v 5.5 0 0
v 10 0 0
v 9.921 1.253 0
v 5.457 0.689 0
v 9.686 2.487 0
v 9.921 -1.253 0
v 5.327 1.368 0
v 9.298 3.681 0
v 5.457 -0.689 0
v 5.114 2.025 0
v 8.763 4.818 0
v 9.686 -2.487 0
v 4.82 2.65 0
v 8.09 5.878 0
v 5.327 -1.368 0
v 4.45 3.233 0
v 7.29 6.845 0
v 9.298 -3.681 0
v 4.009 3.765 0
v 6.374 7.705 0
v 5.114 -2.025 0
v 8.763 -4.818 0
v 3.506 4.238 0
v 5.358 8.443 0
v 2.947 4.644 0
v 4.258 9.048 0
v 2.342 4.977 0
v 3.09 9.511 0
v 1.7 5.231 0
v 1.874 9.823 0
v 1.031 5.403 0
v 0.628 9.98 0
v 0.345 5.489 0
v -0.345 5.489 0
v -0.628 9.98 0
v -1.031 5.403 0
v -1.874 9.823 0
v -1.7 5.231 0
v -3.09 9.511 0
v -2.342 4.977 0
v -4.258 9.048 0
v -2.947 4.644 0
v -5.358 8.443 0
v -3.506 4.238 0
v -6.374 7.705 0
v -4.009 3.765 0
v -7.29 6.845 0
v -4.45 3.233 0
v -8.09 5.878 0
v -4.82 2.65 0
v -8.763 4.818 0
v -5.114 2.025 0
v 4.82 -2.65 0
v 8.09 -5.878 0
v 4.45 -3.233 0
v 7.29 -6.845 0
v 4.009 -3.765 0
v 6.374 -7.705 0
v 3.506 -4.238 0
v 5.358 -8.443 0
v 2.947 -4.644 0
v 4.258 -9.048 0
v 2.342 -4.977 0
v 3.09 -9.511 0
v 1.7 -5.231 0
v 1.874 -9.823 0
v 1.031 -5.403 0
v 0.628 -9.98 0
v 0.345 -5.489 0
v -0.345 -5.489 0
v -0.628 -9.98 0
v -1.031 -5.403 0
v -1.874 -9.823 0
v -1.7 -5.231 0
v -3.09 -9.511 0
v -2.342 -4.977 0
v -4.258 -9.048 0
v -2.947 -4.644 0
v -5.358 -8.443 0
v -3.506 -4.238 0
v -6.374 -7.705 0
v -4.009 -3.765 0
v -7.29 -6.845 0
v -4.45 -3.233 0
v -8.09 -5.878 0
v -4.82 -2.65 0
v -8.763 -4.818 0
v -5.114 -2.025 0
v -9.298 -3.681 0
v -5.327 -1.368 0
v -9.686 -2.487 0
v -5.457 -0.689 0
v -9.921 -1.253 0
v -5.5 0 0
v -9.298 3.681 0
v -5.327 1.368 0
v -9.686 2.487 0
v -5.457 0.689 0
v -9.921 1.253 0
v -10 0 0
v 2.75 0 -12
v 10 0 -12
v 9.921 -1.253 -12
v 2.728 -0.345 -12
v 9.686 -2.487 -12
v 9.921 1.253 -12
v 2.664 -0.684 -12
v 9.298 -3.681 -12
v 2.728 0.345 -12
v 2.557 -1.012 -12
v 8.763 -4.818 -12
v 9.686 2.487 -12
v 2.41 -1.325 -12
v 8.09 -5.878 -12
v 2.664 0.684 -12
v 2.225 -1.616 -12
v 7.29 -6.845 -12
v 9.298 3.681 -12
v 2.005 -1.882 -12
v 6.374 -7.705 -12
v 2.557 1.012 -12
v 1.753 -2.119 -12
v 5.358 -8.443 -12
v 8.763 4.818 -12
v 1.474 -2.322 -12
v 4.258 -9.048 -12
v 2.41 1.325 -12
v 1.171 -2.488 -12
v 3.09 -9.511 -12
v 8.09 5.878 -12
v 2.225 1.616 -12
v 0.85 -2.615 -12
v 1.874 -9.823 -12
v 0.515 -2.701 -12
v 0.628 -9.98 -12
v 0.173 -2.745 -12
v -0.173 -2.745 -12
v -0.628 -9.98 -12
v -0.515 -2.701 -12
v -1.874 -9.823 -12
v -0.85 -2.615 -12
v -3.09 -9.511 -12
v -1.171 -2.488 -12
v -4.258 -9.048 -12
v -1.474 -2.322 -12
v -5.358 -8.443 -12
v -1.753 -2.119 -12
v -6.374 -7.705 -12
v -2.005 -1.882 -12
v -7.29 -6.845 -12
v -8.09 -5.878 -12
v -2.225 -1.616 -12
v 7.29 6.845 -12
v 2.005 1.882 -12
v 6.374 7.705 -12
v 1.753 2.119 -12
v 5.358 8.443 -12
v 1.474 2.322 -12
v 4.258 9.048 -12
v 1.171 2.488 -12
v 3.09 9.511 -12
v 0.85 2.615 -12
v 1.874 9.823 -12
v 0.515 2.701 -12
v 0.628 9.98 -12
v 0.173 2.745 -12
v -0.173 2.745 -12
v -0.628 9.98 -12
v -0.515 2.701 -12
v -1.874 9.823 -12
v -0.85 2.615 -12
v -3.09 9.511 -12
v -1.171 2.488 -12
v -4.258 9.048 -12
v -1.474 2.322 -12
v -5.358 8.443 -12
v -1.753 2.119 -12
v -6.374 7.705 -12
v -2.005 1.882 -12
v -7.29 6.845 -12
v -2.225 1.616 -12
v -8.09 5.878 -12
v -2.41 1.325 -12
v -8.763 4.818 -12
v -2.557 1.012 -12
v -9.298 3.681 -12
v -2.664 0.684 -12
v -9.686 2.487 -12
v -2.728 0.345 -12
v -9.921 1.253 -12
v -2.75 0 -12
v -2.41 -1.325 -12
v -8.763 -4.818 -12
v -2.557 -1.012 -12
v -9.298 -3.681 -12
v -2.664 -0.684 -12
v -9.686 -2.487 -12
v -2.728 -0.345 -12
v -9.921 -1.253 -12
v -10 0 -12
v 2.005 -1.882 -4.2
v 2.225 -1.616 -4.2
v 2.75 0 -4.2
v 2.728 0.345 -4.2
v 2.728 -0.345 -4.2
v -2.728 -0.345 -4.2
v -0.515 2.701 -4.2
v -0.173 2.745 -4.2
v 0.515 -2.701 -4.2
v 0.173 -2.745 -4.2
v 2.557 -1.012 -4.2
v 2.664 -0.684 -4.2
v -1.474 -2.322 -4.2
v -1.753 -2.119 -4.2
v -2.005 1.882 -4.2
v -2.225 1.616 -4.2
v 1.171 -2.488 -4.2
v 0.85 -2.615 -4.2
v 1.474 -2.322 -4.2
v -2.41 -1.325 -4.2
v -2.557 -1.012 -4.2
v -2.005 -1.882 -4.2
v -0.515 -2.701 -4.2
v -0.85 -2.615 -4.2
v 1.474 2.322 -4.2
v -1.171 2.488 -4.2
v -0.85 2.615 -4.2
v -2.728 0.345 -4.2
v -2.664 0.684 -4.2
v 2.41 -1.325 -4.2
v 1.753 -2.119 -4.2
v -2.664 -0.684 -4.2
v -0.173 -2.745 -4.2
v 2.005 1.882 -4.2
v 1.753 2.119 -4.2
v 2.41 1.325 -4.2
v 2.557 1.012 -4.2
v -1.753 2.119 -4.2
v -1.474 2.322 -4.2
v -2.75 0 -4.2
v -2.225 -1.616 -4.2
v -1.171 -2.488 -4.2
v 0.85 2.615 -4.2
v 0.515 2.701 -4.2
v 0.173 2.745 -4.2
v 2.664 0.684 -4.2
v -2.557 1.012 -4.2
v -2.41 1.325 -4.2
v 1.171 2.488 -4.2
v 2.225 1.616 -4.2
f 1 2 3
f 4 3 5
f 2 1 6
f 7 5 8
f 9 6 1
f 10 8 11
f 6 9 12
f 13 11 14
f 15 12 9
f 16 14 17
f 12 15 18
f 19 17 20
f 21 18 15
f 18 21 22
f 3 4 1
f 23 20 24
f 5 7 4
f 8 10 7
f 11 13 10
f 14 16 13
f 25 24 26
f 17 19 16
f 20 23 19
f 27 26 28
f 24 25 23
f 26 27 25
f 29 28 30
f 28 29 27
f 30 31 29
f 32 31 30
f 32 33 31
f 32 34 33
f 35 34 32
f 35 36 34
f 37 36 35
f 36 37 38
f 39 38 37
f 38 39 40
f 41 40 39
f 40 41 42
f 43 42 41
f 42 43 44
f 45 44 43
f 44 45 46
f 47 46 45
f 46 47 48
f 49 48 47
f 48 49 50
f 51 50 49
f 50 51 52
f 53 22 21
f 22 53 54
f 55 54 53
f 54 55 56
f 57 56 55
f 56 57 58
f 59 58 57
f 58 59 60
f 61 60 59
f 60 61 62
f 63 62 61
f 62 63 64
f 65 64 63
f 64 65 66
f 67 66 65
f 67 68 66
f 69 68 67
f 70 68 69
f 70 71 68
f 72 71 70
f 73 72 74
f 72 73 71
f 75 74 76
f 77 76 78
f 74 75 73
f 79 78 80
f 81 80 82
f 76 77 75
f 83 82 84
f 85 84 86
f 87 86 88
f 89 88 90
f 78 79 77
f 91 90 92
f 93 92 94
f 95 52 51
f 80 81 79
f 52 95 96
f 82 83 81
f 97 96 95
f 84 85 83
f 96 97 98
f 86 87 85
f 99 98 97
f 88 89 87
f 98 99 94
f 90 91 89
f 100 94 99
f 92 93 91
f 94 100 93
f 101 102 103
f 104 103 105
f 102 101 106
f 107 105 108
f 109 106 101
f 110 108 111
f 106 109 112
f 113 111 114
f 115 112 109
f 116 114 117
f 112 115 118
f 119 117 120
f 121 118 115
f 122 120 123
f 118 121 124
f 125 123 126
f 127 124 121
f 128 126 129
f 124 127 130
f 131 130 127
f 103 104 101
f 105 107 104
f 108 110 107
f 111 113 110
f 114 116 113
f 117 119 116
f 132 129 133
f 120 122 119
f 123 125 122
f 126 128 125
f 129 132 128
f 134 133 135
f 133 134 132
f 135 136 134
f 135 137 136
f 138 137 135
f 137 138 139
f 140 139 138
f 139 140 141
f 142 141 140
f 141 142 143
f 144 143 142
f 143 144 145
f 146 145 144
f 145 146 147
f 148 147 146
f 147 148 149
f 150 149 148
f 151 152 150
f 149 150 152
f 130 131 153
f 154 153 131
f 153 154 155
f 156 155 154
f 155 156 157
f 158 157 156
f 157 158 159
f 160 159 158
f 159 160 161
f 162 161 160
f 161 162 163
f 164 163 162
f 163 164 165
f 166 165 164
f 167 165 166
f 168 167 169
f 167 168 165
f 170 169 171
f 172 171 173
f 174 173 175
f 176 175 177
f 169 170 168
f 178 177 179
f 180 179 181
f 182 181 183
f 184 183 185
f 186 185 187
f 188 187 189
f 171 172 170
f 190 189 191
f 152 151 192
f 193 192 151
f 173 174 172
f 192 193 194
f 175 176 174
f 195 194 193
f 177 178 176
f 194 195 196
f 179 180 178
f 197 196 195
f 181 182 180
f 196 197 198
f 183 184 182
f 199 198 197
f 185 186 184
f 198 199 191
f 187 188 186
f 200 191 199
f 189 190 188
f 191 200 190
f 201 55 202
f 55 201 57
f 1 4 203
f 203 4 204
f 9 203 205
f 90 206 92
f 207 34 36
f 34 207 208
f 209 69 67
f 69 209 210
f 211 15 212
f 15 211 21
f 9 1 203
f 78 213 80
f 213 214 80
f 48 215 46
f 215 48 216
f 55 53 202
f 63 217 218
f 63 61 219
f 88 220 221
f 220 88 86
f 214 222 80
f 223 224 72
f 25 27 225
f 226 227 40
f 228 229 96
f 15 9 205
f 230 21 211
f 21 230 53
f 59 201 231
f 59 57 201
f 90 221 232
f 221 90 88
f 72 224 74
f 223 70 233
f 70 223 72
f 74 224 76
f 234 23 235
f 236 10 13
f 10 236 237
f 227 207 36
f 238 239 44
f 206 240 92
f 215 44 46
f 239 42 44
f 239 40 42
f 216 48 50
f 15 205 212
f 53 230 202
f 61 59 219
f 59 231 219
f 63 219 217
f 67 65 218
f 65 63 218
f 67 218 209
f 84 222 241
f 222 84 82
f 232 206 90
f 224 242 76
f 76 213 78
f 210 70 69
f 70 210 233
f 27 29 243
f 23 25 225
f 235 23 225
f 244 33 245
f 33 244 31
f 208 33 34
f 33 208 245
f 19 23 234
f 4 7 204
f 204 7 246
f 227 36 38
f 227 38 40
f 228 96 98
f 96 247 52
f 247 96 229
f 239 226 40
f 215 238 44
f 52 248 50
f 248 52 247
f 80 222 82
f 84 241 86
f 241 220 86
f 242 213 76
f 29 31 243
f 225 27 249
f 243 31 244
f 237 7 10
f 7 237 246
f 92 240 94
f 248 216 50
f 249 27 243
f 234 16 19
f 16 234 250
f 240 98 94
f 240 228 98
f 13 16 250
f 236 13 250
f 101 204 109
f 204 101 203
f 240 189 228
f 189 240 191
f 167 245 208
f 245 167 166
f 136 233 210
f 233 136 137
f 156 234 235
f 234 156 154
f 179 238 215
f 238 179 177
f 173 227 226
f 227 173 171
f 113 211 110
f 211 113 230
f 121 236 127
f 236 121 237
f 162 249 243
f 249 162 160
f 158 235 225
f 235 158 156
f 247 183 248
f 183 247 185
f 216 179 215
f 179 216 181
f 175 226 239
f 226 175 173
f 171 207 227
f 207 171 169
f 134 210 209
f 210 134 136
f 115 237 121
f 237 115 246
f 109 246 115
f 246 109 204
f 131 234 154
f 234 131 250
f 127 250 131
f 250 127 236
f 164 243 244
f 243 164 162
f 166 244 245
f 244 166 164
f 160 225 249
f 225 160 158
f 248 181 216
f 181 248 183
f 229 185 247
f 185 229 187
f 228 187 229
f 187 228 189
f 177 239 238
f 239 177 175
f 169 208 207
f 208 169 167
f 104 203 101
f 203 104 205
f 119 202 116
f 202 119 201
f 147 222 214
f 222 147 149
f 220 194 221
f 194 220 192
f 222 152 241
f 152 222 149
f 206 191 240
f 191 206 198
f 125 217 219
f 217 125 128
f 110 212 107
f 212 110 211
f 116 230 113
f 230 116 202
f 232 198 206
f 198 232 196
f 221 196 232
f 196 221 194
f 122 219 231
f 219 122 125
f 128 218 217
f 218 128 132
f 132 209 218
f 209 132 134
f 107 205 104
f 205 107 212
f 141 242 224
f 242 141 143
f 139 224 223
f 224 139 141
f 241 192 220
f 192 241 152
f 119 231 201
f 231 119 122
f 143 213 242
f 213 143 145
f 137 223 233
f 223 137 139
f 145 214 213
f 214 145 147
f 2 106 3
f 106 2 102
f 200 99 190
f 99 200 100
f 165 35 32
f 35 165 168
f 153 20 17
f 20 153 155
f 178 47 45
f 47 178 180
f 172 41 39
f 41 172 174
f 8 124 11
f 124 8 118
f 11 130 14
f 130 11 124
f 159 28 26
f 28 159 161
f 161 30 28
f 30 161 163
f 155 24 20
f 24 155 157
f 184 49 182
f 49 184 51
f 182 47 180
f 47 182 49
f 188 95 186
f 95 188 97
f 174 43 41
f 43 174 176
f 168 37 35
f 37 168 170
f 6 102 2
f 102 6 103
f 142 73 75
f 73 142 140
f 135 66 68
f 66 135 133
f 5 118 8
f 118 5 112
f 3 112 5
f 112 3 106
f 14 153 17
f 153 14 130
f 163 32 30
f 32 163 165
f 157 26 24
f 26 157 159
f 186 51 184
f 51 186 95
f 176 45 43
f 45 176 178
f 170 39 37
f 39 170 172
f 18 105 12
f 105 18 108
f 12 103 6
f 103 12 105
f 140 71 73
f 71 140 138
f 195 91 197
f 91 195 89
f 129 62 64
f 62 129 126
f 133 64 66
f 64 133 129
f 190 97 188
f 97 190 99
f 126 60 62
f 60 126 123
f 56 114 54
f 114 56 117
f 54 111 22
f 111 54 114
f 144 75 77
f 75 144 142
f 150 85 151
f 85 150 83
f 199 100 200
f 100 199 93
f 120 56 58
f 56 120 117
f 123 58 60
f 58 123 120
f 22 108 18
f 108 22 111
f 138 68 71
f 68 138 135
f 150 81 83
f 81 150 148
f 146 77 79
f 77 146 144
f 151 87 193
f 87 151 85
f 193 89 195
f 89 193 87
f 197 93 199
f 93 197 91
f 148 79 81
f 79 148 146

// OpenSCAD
$fn = 50;


difference() {
	union() {
		translate(v = [0, 0, -12.0000000000]) {
			cylinder(h = 12, r = 10.0000000000);
		}
		cylinder(h = 0, r = 19.0000000000);
	}
	union() {
		translate(v = [0, 0, 0]) {
			rotate(a = [0, 0, 0]) {
				difference() {
					union() {
						#translate(v = [0, 0, -12.0000000000]) {
							cylinder(h = 12, r = 2.2500000000);
						}
						#translate(v = [0, 0, -4.2000000000]) {
							cylinder(h = 4.2000000000, r1 = 2.7500000000, r2 = 5.5000000000);
						}
						#translate(v = [0, 0, -12.0000000000]) {
							cylinder(h = 12, r = 2.7500000000);
						}
						#translate(v = [0, 0, -12.0000000000]) {
							cylinder(h = 12, r = 2.2500000000);
						}
					}
					union();
				}
			}
		}
	}
}
